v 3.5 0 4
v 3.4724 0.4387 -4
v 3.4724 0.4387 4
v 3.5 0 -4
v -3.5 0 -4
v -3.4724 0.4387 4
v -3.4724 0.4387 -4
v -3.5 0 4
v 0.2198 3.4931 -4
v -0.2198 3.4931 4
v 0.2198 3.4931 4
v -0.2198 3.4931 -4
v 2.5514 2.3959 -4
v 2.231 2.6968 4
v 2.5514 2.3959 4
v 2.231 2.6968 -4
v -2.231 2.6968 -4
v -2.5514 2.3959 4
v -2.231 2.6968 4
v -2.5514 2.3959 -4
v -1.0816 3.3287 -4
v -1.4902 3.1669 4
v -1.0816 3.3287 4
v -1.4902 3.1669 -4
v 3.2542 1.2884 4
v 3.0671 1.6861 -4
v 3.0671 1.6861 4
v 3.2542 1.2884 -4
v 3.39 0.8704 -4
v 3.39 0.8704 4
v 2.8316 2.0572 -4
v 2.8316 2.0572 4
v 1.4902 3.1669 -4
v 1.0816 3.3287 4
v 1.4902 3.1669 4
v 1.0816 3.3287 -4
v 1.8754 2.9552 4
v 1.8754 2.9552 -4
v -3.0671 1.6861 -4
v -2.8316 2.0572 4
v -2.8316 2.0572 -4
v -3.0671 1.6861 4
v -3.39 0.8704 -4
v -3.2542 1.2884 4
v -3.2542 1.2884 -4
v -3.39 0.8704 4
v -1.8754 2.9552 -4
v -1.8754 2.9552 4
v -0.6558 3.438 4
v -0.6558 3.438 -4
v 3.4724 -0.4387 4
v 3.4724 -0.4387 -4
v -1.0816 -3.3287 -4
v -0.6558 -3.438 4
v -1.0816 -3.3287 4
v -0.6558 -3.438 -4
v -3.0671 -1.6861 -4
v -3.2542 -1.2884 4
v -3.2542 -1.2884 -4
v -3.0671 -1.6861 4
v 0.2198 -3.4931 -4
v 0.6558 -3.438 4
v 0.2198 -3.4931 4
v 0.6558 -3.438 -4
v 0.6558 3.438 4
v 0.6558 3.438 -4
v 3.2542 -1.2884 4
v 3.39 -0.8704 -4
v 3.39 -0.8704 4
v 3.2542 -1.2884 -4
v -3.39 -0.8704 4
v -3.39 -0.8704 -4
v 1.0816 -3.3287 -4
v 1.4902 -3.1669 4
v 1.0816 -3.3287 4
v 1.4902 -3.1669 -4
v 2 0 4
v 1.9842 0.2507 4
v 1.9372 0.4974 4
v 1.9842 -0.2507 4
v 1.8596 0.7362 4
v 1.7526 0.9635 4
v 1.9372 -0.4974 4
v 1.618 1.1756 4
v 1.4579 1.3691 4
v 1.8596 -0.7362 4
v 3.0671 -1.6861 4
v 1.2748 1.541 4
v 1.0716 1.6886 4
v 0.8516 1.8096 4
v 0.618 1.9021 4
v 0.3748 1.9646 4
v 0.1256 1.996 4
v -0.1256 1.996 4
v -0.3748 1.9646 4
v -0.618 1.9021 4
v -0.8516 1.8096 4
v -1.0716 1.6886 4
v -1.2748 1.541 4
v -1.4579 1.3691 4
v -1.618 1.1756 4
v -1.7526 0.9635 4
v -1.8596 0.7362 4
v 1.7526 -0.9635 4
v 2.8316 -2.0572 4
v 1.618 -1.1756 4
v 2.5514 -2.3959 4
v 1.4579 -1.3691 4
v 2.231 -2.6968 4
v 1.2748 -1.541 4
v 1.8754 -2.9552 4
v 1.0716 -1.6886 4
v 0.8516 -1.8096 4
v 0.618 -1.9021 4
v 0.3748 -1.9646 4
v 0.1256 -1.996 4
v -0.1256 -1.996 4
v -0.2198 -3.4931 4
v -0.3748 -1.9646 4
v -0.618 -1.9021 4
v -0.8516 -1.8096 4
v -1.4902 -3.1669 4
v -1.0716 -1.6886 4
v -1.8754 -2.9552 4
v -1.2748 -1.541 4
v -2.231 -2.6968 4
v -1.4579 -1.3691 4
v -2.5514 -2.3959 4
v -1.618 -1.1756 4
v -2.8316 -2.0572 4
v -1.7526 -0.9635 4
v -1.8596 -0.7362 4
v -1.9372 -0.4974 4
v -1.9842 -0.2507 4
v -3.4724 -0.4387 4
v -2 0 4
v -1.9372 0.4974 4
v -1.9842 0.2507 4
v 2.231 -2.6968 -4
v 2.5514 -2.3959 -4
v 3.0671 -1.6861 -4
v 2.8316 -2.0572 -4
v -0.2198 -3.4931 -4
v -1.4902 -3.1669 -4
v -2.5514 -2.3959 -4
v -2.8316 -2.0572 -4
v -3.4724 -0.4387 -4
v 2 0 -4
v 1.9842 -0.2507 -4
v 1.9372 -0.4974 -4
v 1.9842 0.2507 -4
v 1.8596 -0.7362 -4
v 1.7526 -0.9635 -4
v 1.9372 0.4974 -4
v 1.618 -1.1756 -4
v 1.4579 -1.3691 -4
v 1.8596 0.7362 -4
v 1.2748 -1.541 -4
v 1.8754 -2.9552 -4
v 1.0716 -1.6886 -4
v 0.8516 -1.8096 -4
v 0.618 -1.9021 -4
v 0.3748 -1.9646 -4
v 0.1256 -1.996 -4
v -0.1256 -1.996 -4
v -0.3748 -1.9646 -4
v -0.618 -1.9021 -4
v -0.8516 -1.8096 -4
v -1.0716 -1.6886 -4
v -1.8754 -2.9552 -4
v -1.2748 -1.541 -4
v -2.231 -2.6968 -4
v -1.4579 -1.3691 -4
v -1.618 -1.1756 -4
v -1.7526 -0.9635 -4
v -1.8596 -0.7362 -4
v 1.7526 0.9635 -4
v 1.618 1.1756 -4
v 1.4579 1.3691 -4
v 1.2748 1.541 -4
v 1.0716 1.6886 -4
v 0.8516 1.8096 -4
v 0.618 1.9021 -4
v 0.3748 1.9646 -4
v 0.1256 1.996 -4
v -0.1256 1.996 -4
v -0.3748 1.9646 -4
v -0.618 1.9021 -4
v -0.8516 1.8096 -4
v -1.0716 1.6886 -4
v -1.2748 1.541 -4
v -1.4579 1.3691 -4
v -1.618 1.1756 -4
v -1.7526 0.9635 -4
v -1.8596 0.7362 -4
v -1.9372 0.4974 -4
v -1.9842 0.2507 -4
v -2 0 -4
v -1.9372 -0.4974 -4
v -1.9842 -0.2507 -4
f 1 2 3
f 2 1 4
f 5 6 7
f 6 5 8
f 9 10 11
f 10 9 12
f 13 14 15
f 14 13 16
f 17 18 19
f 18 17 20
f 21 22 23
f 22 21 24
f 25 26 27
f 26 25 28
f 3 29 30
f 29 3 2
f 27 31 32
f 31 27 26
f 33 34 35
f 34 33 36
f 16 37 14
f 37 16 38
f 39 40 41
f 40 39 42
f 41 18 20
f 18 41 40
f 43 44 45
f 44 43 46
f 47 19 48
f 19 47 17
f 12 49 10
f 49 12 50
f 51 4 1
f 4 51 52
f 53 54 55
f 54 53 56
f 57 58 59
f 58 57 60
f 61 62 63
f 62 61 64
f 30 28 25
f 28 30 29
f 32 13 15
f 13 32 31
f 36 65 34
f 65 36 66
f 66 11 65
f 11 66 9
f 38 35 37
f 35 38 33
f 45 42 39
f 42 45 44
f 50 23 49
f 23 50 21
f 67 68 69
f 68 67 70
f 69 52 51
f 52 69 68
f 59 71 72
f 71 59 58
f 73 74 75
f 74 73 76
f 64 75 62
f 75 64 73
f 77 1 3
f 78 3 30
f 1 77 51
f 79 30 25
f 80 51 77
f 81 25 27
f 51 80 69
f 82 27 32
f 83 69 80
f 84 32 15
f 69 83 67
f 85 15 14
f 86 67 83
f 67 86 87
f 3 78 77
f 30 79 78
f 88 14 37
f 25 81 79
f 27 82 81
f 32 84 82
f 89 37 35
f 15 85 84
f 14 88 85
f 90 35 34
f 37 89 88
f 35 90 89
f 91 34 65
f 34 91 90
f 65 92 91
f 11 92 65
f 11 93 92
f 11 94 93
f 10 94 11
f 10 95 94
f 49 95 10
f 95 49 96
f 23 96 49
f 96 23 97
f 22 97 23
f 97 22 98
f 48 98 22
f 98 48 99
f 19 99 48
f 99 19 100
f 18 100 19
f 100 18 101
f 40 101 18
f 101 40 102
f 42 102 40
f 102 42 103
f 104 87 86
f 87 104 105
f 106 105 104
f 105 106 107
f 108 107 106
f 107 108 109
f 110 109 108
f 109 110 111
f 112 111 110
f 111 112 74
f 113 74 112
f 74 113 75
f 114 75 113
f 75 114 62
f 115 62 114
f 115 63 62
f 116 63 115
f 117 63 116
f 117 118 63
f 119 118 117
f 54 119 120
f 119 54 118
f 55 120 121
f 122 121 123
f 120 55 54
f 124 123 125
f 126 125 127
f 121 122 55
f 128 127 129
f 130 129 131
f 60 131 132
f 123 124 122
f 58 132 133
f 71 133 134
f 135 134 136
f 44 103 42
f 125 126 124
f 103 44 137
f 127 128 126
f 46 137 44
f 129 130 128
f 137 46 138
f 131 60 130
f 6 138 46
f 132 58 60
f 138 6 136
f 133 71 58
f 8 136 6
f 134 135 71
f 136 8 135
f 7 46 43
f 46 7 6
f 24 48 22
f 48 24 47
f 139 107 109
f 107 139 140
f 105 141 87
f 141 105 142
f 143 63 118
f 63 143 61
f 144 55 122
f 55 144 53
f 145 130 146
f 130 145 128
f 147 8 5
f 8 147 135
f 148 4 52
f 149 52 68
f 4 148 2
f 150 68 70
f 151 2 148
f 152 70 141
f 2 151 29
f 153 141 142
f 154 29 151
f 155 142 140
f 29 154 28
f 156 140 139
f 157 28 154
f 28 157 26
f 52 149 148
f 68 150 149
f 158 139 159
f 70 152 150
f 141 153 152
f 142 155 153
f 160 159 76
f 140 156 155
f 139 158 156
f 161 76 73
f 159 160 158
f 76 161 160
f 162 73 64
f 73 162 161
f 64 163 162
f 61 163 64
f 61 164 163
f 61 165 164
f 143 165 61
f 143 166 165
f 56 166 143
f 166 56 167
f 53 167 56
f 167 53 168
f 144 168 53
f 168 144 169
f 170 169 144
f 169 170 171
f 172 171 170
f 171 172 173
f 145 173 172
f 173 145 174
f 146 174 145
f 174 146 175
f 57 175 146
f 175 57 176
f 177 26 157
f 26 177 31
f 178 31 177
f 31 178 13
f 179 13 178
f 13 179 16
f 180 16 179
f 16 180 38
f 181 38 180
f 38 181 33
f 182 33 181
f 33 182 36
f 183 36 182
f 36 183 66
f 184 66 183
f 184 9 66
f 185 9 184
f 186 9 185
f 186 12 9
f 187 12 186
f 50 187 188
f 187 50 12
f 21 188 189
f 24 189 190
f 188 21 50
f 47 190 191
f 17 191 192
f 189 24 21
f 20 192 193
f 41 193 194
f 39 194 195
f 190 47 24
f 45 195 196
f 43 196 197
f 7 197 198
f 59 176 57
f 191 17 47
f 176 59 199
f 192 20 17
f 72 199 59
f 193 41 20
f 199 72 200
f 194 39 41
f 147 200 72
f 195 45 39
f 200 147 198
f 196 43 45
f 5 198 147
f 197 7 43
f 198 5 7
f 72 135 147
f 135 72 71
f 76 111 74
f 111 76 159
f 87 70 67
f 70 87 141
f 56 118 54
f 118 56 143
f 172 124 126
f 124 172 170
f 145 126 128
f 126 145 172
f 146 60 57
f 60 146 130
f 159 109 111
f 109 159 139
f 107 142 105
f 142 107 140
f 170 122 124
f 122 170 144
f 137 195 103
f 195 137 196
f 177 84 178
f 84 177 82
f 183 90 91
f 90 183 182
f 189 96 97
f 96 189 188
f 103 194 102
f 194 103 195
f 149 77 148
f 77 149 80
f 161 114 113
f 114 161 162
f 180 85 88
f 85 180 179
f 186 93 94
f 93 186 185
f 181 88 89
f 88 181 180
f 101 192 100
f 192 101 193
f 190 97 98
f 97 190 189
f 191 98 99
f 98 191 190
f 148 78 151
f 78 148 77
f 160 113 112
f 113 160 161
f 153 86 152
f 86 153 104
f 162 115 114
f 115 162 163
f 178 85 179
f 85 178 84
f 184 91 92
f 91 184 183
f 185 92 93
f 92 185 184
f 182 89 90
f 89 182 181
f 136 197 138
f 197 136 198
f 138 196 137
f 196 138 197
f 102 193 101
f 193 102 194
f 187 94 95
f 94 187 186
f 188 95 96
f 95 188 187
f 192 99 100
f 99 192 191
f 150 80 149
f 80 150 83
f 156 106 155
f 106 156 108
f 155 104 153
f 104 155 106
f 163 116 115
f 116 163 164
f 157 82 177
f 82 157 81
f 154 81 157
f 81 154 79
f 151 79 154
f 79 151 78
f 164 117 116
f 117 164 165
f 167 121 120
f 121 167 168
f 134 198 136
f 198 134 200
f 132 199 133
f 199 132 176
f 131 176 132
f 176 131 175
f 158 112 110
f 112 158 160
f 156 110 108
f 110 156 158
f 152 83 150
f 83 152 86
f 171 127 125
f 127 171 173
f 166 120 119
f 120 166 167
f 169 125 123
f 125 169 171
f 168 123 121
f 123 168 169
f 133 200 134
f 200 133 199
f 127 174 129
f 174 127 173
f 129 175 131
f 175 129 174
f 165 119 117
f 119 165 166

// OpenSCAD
$fn = 50;


difference() {
	union() {
		translate(v = [0, 0, -4.0000000000]) {
			cylinder(h = 8, r = 3.5000000000);
		}
	}
	union() {
		translate(v = [0, 0, -100.0000000000]) {
			cylinder(h = 200, r = 2.0000000000);
		}
	}
}
